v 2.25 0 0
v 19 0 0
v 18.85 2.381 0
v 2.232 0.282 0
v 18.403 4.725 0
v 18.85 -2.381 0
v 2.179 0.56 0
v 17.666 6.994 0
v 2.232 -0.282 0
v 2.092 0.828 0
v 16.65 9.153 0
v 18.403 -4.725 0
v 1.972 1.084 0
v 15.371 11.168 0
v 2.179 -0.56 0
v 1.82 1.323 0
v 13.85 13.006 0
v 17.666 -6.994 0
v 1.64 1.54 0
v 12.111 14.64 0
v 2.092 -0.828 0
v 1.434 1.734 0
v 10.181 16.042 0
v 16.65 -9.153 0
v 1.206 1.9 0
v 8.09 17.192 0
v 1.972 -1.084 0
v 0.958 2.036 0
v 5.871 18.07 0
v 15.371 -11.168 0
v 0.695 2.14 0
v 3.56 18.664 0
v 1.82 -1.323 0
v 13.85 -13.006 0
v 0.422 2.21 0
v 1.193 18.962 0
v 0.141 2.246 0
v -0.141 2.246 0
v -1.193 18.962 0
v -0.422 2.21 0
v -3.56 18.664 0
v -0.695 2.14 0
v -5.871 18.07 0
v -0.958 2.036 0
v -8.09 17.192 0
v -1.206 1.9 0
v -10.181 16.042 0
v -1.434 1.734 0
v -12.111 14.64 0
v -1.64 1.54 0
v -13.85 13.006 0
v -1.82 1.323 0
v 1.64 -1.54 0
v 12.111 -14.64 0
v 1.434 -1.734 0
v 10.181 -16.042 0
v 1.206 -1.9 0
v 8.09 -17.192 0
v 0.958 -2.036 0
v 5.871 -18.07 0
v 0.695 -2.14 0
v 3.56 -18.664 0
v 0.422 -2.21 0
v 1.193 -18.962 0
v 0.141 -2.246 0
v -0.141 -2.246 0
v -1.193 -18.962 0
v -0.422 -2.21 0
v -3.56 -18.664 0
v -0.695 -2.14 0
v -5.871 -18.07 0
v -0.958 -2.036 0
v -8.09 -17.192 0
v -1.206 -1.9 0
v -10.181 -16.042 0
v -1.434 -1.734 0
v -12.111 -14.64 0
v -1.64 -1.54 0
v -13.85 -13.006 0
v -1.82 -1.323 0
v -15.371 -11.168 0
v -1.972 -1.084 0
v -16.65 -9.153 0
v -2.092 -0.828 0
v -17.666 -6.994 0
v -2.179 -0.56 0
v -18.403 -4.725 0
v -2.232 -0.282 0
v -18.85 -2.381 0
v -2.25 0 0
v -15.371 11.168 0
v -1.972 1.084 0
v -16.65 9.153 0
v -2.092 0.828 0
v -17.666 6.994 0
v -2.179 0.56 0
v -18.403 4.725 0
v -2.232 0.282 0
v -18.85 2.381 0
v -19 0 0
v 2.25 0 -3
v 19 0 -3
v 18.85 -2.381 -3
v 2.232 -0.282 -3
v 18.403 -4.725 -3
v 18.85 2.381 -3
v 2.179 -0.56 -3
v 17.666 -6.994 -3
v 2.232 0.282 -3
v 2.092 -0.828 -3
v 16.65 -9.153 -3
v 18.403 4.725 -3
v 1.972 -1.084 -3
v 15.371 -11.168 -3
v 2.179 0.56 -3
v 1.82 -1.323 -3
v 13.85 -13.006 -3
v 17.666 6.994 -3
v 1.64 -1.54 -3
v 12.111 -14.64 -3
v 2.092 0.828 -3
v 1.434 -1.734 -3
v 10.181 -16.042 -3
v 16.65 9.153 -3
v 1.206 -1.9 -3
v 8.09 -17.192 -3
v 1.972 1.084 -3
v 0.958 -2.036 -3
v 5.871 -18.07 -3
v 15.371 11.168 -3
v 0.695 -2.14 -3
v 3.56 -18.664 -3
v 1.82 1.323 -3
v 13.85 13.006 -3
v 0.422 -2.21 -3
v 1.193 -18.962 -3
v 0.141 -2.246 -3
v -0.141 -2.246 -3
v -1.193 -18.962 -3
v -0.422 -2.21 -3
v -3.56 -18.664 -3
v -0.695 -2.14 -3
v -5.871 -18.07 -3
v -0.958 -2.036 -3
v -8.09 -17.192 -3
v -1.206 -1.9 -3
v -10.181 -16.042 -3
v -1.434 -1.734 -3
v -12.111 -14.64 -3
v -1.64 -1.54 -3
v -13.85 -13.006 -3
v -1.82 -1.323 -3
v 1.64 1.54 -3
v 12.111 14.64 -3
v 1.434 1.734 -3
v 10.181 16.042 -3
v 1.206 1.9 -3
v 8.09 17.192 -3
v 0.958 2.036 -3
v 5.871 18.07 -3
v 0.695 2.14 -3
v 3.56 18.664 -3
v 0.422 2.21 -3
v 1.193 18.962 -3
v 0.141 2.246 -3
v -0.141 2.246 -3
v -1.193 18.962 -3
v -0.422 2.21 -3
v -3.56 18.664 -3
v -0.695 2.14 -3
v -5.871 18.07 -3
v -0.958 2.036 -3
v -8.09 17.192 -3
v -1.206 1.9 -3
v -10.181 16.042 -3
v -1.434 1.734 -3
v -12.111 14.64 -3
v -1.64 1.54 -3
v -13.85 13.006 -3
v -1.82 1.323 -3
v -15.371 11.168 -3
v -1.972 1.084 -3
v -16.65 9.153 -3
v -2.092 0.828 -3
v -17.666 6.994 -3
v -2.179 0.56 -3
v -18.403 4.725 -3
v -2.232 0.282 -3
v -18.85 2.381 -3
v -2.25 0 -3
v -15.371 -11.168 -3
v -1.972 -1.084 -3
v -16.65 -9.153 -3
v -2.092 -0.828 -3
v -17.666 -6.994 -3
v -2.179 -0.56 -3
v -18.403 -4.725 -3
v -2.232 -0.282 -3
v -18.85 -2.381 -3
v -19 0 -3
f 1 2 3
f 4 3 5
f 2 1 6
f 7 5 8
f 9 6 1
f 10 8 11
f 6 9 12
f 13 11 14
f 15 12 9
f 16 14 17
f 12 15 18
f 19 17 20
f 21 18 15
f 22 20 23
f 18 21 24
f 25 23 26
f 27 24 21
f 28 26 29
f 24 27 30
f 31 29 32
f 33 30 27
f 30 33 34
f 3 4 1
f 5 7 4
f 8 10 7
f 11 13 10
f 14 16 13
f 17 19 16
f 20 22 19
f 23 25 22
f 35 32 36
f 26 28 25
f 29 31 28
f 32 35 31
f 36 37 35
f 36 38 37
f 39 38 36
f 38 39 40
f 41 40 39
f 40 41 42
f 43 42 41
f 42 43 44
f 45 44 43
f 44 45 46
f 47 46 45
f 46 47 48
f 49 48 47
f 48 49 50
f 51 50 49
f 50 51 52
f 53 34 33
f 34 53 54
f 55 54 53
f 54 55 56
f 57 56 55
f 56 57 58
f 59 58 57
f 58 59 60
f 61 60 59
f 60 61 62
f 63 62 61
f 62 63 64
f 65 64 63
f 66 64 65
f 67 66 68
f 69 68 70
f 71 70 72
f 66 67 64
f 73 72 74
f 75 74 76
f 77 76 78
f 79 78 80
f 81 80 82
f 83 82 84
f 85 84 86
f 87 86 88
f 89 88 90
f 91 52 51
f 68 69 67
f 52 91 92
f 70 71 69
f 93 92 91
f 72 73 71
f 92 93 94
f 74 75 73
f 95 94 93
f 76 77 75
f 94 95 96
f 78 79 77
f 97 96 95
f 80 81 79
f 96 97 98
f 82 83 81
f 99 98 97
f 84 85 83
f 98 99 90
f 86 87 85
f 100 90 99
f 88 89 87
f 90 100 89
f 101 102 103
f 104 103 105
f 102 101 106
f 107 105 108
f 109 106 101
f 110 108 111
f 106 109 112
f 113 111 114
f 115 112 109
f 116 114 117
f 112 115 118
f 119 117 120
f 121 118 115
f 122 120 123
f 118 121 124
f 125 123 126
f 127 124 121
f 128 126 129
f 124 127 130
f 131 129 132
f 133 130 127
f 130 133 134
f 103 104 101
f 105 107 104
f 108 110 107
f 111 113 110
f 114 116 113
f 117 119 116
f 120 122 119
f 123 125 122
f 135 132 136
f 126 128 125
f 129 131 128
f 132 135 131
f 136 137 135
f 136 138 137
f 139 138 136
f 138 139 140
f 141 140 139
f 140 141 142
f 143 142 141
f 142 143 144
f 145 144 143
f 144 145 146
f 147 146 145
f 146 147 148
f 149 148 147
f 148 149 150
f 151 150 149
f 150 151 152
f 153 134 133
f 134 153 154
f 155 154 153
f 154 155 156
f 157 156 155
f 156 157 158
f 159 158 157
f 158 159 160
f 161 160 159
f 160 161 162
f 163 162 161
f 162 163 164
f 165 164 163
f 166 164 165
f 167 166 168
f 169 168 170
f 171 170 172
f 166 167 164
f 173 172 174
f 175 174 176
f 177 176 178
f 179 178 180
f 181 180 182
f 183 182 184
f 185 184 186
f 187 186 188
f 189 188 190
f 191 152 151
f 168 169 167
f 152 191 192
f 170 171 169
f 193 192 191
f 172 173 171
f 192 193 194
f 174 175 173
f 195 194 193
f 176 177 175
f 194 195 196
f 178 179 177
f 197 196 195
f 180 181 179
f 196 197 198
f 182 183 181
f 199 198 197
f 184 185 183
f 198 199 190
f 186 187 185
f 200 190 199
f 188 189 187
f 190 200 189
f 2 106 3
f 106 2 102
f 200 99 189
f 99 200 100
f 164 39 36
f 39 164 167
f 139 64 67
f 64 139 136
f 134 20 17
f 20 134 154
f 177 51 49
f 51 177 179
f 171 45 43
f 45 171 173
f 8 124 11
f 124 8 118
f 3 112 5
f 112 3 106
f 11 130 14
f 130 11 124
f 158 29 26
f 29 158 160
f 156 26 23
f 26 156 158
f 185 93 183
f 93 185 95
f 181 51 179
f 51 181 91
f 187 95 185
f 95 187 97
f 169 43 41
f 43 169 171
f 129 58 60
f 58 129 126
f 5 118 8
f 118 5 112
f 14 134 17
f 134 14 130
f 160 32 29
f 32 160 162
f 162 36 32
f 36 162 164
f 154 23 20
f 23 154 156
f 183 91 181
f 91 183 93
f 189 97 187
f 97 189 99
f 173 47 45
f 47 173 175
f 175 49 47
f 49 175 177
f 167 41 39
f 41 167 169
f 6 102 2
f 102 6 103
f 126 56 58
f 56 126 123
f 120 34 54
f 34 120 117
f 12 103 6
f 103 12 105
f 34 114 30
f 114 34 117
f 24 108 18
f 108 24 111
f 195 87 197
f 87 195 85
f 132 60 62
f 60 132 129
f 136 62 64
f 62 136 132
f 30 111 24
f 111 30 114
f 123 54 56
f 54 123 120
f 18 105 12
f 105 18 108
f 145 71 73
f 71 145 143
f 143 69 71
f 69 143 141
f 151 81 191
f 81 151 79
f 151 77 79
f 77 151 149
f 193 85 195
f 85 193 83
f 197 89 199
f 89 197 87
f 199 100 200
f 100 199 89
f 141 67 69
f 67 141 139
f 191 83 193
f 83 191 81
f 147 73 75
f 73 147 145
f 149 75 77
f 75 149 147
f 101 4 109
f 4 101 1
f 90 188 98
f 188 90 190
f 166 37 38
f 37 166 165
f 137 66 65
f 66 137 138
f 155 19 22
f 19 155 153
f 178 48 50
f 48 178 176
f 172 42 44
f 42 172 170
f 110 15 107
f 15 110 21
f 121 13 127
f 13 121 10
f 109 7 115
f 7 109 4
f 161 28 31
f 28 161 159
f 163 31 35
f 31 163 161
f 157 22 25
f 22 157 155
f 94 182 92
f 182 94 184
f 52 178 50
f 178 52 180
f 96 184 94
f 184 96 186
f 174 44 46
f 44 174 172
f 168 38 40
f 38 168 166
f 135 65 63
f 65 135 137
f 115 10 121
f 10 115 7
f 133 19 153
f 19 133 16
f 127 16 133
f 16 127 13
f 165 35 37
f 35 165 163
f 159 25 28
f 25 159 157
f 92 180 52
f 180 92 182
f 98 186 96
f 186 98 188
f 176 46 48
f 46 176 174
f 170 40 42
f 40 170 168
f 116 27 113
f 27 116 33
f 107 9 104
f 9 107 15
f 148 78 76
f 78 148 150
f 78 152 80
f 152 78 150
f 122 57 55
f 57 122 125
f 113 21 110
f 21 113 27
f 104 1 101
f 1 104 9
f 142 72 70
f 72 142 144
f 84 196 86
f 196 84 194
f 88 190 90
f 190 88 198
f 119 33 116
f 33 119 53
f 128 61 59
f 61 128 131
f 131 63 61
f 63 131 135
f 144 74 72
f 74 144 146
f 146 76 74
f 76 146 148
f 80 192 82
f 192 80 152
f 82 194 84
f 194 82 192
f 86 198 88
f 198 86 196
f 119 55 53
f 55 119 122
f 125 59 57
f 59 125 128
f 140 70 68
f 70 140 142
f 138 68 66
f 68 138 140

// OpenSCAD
$fn = 50;


difference() {
	union() {
		translate(v = [0, 0, -3.0000000000]) {
			cylinder(h = 3, r = 10.0000000000);
		}
		translate(v = [0, 0, -3.0000000000]) {
			cylinder(h = 3, r = 19.0000000000);
		}
	}
	union() {
		#translate(v = [0, 0, -3]) {
			cylinder(h = 3, r = 2.2500000000);
		}
	}
}
